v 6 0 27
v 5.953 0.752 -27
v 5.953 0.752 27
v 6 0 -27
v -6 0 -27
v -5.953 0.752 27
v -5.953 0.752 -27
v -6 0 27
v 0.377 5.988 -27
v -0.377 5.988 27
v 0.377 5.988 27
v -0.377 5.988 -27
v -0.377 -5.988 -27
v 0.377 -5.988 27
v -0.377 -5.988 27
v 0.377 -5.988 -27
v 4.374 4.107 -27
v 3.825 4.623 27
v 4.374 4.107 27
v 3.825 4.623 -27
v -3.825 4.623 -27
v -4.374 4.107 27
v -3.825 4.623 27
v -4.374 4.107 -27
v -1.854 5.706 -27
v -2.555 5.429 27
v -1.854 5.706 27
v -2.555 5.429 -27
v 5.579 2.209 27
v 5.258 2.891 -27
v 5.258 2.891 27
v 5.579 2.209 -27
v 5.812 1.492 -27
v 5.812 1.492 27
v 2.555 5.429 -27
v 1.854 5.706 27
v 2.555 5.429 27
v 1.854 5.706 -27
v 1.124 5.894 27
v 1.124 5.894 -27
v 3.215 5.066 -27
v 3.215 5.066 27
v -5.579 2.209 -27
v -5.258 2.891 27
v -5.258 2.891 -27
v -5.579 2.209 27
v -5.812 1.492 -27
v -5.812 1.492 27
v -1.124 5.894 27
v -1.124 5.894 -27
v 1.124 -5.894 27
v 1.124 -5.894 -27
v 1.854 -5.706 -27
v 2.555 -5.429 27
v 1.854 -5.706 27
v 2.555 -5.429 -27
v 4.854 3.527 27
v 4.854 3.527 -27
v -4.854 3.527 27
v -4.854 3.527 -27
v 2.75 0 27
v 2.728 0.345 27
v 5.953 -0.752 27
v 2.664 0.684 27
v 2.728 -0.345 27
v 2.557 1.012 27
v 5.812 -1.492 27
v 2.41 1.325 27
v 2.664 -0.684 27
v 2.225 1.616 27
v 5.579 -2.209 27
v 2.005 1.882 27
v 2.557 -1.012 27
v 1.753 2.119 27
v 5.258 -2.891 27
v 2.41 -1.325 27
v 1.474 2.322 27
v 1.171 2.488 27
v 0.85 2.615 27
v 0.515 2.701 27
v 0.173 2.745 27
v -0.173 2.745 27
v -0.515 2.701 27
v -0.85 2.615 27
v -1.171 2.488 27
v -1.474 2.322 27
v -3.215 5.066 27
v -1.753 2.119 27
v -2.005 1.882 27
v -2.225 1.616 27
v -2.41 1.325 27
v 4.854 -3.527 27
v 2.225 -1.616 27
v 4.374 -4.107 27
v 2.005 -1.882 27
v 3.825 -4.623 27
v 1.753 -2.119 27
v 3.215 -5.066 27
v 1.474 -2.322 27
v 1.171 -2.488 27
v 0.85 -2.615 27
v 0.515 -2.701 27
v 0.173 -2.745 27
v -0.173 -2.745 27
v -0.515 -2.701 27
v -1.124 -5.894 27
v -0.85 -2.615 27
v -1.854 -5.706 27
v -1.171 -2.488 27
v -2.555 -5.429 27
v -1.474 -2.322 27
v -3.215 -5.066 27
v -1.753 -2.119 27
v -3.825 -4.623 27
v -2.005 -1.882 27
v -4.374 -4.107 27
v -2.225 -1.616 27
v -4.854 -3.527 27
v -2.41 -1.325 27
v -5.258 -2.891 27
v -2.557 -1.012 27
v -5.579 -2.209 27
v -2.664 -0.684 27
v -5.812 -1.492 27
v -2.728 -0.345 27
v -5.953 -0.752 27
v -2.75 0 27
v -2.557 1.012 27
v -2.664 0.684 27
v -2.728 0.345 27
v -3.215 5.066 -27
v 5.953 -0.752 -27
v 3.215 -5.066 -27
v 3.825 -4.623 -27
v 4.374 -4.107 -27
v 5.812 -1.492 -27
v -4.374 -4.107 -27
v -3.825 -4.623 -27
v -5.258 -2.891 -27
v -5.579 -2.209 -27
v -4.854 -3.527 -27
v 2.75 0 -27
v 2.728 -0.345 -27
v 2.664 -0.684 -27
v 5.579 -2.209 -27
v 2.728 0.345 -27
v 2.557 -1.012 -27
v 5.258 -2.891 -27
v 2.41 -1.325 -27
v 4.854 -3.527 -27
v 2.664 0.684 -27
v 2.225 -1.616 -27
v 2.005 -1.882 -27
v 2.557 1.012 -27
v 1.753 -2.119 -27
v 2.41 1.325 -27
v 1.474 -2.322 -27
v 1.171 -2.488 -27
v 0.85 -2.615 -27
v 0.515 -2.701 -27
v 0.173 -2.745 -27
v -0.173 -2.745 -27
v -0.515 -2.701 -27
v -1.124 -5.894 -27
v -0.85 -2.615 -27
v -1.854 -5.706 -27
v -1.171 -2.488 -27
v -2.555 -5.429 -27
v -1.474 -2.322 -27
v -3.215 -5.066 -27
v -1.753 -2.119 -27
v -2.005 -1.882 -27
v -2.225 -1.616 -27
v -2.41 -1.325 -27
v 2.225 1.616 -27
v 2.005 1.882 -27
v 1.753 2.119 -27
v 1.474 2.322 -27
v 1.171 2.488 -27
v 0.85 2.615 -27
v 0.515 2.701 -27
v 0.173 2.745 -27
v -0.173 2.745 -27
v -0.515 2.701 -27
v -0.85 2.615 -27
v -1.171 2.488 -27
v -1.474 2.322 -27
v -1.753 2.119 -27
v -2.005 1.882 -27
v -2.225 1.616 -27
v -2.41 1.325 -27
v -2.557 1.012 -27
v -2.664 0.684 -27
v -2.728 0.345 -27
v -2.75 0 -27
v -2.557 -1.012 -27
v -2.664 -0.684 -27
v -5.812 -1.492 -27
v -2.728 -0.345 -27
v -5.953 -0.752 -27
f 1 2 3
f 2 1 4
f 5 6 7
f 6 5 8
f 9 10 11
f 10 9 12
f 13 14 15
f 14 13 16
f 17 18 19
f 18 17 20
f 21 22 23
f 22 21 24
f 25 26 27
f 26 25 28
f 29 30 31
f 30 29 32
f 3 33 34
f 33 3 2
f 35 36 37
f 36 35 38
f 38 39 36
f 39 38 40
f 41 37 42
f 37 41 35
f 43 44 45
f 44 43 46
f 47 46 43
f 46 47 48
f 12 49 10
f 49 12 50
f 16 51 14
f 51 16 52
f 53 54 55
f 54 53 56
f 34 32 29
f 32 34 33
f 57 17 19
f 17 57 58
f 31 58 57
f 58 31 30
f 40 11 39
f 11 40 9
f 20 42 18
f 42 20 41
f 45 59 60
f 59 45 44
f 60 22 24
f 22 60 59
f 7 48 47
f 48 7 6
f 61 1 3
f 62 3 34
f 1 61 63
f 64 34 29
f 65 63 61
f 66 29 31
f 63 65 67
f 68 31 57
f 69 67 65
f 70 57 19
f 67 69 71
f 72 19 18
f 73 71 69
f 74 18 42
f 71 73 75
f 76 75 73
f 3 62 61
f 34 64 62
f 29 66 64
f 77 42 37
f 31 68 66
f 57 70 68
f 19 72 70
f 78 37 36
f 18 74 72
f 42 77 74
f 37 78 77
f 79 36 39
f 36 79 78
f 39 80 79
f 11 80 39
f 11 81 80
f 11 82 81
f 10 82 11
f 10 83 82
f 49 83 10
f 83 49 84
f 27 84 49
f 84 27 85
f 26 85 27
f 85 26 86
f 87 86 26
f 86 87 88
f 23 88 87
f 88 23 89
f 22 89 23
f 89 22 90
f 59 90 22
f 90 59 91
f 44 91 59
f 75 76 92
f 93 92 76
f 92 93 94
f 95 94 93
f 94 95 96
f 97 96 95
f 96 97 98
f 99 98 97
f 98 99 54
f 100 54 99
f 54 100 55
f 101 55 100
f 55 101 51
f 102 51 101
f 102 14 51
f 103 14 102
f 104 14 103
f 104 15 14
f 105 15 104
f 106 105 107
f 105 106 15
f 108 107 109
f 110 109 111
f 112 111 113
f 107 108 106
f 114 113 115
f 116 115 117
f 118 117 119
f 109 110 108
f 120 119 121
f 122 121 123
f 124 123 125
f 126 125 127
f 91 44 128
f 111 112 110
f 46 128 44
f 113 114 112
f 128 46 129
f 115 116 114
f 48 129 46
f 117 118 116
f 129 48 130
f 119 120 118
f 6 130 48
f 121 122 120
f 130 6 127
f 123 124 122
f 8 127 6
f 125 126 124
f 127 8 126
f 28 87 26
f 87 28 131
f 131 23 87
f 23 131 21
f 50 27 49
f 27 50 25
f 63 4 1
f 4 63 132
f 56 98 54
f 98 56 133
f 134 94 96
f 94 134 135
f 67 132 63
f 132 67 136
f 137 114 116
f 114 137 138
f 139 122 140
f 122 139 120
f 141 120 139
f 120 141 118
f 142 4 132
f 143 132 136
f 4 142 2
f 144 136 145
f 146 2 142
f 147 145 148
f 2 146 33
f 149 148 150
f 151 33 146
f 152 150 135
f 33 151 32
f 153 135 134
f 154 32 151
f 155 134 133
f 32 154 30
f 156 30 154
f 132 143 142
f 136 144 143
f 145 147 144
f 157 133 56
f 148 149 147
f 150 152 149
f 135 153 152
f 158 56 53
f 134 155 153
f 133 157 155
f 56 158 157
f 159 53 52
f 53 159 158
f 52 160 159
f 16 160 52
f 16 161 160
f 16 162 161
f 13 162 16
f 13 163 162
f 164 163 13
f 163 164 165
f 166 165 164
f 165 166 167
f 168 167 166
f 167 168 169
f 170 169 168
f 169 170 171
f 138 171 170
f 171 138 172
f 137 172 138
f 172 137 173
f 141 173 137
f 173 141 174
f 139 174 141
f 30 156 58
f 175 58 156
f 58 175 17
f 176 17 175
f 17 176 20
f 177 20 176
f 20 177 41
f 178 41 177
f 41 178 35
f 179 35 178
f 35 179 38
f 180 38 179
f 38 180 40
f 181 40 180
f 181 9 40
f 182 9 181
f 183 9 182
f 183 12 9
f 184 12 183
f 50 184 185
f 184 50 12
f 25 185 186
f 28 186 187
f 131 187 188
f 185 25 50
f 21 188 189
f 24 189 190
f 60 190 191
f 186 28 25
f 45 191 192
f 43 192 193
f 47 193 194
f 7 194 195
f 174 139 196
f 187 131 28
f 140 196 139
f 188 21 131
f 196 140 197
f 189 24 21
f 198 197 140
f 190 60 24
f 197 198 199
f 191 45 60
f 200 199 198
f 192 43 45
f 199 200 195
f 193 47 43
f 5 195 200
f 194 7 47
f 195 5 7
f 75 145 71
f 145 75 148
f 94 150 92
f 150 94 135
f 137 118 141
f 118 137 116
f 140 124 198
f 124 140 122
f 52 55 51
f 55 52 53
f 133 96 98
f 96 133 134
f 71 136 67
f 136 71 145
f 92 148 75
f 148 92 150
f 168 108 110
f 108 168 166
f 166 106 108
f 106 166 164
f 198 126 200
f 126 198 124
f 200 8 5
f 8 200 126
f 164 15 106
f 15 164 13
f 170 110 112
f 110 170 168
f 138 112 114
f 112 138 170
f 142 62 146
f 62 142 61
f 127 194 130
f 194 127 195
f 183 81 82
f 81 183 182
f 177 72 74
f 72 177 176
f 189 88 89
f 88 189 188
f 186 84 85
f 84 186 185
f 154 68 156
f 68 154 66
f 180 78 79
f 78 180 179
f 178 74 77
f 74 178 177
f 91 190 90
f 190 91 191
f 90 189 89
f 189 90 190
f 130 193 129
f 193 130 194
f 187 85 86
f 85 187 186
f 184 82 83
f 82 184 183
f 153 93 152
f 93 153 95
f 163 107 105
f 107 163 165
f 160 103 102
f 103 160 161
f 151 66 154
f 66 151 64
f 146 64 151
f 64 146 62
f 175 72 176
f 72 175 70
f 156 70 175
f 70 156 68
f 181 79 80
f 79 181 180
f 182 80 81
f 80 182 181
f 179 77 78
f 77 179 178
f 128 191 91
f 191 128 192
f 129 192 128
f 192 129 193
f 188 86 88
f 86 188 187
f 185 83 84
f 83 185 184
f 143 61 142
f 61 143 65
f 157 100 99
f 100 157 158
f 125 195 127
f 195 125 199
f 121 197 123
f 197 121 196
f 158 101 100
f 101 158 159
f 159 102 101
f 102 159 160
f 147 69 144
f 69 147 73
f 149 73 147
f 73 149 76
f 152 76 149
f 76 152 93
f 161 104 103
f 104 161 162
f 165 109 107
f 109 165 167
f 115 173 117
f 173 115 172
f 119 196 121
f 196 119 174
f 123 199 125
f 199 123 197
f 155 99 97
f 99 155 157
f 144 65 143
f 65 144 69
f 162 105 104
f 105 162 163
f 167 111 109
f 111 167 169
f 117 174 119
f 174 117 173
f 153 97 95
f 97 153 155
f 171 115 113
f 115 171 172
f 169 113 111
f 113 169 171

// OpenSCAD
$fn = 50;


difference() {
	union() {
		translate(v = [0, 0, -27.0000000000]) {
			cylinder(h = 54, r = 6.0000000000);
		}
	}
	union() {
		translate(v = [0, 0, -100.0000000000]) {
			cylinder(h = 200, r = 2.7500000000);
		}
	}
}
